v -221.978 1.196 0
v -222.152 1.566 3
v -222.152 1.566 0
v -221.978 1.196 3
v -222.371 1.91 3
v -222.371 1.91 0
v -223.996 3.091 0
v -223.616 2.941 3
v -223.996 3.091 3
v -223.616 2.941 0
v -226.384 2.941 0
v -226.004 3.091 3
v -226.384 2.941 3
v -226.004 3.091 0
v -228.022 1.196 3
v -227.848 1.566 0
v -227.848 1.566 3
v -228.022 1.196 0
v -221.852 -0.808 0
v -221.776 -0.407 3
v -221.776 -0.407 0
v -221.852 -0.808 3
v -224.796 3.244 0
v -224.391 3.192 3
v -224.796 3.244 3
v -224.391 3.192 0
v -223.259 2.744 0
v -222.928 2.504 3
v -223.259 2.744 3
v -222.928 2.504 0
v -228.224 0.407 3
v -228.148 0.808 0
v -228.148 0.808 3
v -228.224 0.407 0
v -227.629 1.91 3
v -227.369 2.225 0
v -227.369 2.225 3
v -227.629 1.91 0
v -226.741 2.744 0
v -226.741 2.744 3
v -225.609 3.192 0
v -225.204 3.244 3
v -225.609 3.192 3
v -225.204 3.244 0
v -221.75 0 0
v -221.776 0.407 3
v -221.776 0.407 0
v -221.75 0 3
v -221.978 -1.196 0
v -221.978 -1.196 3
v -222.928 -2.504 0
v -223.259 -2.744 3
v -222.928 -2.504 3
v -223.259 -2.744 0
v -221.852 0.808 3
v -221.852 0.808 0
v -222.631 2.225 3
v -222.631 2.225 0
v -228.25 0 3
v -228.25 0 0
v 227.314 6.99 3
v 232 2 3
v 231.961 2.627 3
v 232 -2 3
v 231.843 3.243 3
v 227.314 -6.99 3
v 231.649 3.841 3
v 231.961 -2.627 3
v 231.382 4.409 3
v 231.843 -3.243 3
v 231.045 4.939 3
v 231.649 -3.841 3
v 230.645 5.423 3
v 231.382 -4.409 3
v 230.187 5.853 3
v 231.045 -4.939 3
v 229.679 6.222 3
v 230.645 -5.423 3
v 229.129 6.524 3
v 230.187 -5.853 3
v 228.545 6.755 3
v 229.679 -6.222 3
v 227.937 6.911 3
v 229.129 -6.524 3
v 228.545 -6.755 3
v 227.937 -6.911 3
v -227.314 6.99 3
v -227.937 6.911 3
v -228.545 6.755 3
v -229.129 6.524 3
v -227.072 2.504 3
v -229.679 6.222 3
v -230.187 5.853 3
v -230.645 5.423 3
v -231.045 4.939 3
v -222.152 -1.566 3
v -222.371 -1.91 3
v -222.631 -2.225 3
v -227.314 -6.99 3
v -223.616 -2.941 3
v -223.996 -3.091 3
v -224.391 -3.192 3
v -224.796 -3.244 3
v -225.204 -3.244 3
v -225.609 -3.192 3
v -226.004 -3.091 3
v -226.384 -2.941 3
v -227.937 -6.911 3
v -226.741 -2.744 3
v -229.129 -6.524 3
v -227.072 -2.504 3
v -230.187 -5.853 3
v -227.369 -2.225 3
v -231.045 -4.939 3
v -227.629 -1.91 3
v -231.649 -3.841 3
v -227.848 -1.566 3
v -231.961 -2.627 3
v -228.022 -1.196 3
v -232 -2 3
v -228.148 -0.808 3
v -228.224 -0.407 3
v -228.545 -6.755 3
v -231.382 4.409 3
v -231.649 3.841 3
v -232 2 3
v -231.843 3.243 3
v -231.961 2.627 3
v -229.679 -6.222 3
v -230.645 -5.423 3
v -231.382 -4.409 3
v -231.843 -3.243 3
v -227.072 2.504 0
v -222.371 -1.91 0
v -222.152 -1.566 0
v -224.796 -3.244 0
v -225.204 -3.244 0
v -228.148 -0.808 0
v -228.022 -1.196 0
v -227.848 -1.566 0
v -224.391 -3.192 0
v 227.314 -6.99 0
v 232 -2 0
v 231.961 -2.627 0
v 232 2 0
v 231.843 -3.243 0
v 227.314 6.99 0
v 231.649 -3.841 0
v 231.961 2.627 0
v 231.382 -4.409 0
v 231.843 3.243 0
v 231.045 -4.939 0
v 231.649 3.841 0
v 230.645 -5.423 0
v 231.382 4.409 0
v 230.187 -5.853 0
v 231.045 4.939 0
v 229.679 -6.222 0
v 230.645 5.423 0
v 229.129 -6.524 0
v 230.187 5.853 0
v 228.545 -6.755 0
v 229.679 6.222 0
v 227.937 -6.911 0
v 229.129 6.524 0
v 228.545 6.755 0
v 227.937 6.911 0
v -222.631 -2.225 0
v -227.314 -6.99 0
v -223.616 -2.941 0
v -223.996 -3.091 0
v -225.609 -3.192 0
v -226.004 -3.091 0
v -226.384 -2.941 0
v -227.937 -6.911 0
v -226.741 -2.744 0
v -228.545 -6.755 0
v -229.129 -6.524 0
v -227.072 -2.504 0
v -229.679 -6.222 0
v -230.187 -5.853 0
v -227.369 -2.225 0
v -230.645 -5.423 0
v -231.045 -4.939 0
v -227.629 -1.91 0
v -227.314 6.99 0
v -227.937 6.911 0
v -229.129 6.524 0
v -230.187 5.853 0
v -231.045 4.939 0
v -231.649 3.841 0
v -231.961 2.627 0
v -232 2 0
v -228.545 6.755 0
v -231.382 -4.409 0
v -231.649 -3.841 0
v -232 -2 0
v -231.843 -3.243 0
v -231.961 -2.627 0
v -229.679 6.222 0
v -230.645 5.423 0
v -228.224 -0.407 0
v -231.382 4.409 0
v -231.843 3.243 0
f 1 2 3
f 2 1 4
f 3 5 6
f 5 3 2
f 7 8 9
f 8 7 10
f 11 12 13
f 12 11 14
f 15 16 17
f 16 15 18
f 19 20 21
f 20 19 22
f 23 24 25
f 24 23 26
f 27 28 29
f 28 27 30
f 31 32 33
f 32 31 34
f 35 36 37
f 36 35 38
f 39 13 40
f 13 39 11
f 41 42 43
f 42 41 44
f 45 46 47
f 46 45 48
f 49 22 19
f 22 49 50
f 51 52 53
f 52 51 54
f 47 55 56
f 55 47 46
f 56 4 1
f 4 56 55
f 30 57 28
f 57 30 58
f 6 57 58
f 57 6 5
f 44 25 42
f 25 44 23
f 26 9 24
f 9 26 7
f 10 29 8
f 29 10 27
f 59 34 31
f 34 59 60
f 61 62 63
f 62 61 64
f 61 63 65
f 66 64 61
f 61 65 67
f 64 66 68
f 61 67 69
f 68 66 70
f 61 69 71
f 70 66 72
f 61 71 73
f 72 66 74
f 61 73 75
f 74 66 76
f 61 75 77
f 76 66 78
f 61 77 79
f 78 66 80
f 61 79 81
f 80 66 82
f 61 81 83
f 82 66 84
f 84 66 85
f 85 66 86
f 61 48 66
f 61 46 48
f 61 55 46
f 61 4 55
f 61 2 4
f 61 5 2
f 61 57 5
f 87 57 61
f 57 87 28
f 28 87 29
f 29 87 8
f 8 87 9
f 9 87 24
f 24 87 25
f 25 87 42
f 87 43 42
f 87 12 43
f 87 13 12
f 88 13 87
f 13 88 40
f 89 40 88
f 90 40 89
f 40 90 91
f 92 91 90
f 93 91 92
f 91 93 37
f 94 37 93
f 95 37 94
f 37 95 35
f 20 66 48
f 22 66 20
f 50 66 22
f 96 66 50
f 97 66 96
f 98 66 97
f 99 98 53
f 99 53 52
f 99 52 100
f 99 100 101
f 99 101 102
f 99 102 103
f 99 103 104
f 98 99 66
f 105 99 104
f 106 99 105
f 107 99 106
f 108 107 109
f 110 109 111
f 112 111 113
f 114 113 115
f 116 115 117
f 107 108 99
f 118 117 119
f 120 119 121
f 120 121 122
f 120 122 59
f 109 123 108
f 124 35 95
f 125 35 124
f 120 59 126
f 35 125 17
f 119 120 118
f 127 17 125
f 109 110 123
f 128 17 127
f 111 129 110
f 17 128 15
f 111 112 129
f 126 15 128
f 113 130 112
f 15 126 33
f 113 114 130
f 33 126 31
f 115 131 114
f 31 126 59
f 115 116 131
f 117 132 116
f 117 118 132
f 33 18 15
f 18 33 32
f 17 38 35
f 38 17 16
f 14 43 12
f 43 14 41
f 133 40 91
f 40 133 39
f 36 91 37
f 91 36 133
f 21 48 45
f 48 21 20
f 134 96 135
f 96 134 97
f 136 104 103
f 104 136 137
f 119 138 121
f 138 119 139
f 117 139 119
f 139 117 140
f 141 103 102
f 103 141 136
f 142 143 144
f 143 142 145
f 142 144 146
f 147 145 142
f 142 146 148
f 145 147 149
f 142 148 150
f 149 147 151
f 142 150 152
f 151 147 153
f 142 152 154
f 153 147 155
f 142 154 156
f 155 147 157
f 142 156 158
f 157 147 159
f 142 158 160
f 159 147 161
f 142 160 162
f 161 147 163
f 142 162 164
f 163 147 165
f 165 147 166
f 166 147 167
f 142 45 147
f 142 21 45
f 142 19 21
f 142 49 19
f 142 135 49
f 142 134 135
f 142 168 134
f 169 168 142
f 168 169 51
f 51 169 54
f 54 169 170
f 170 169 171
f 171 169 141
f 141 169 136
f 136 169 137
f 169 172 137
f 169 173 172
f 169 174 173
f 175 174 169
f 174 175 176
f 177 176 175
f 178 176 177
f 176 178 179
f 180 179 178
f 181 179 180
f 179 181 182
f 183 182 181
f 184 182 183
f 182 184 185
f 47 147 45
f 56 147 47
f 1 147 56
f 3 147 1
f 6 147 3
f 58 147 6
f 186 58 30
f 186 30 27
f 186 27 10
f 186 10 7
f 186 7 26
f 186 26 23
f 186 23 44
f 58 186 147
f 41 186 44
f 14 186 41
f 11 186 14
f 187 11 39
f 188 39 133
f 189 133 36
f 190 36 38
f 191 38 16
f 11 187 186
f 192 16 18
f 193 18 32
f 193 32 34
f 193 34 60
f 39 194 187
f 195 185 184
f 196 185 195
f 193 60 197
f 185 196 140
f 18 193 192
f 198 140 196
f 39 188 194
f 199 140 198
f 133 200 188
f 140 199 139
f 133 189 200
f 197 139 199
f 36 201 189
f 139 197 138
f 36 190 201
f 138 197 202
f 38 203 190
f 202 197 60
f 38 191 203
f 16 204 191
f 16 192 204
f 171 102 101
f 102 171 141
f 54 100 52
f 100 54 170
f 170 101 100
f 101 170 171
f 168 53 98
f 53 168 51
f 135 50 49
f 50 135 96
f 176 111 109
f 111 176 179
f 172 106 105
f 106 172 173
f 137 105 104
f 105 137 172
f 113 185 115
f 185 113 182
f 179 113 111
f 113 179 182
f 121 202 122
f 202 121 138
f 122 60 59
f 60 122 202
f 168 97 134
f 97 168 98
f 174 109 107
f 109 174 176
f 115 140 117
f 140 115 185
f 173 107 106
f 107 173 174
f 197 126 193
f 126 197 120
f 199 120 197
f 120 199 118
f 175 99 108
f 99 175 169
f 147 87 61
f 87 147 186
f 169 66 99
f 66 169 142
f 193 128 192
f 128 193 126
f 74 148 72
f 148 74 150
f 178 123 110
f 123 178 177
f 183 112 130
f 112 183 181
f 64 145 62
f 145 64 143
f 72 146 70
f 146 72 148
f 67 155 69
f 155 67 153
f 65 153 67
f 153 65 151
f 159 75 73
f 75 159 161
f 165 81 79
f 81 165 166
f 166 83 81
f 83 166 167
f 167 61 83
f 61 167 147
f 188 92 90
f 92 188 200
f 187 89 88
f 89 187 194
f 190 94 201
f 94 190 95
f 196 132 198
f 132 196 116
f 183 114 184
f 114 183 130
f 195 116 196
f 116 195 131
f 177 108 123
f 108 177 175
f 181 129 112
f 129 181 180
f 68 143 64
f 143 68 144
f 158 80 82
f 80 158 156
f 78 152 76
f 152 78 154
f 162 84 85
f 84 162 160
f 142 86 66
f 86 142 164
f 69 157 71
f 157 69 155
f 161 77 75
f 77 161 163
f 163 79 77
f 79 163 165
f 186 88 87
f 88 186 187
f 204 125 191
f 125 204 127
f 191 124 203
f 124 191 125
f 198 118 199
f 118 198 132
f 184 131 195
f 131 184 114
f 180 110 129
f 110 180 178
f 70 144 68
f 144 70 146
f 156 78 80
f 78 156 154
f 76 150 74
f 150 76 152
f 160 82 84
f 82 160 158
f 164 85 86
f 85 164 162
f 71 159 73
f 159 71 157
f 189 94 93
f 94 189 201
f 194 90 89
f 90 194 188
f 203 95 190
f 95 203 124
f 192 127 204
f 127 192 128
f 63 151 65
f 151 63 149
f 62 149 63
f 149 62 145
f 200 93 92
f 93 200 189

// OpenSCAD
$fn = 50;


difference() {
	union() {
		hull() {
			translate(v = [-227.0000000000, 2.0000000000, 0]) {
				cylinder(h = 3, r = 5);
			}
			translate(v = [227.0000000000, 2.0000000000, 0]) {
				cylinder(h = 3, r = 5);
			}
			translate(v = [-227.0000000000, -2.0000000000, 0]) {
				cylinder(h = 3, r = 5);
			}
			translate(v = [227.0000000000, -2.0000000000, 0]) {
				cylinder(h = 3, r = 5);
			}
		}
	}
	union() {
		translate(v = [-225.0000000000, 0.0000000000, 0]) {
			cylinder(h = 3, r = 3.2500000000);
		}
		translate(v = [-225.0000000000, 0.0000000000, 0]) {
			cylinder(h = 3, r = 1.8000000000);
		}
		translate(v = [-225.0000000000, 0.0000000000, 0]) {
			cylinder(h = 3, r = 1.8000000000);
		}
		translate(v = [-225.0000000000, 0.0000000000, 0]) {
			cylinder(h = 3, r = 1.8000000000);
		}
	}
}
